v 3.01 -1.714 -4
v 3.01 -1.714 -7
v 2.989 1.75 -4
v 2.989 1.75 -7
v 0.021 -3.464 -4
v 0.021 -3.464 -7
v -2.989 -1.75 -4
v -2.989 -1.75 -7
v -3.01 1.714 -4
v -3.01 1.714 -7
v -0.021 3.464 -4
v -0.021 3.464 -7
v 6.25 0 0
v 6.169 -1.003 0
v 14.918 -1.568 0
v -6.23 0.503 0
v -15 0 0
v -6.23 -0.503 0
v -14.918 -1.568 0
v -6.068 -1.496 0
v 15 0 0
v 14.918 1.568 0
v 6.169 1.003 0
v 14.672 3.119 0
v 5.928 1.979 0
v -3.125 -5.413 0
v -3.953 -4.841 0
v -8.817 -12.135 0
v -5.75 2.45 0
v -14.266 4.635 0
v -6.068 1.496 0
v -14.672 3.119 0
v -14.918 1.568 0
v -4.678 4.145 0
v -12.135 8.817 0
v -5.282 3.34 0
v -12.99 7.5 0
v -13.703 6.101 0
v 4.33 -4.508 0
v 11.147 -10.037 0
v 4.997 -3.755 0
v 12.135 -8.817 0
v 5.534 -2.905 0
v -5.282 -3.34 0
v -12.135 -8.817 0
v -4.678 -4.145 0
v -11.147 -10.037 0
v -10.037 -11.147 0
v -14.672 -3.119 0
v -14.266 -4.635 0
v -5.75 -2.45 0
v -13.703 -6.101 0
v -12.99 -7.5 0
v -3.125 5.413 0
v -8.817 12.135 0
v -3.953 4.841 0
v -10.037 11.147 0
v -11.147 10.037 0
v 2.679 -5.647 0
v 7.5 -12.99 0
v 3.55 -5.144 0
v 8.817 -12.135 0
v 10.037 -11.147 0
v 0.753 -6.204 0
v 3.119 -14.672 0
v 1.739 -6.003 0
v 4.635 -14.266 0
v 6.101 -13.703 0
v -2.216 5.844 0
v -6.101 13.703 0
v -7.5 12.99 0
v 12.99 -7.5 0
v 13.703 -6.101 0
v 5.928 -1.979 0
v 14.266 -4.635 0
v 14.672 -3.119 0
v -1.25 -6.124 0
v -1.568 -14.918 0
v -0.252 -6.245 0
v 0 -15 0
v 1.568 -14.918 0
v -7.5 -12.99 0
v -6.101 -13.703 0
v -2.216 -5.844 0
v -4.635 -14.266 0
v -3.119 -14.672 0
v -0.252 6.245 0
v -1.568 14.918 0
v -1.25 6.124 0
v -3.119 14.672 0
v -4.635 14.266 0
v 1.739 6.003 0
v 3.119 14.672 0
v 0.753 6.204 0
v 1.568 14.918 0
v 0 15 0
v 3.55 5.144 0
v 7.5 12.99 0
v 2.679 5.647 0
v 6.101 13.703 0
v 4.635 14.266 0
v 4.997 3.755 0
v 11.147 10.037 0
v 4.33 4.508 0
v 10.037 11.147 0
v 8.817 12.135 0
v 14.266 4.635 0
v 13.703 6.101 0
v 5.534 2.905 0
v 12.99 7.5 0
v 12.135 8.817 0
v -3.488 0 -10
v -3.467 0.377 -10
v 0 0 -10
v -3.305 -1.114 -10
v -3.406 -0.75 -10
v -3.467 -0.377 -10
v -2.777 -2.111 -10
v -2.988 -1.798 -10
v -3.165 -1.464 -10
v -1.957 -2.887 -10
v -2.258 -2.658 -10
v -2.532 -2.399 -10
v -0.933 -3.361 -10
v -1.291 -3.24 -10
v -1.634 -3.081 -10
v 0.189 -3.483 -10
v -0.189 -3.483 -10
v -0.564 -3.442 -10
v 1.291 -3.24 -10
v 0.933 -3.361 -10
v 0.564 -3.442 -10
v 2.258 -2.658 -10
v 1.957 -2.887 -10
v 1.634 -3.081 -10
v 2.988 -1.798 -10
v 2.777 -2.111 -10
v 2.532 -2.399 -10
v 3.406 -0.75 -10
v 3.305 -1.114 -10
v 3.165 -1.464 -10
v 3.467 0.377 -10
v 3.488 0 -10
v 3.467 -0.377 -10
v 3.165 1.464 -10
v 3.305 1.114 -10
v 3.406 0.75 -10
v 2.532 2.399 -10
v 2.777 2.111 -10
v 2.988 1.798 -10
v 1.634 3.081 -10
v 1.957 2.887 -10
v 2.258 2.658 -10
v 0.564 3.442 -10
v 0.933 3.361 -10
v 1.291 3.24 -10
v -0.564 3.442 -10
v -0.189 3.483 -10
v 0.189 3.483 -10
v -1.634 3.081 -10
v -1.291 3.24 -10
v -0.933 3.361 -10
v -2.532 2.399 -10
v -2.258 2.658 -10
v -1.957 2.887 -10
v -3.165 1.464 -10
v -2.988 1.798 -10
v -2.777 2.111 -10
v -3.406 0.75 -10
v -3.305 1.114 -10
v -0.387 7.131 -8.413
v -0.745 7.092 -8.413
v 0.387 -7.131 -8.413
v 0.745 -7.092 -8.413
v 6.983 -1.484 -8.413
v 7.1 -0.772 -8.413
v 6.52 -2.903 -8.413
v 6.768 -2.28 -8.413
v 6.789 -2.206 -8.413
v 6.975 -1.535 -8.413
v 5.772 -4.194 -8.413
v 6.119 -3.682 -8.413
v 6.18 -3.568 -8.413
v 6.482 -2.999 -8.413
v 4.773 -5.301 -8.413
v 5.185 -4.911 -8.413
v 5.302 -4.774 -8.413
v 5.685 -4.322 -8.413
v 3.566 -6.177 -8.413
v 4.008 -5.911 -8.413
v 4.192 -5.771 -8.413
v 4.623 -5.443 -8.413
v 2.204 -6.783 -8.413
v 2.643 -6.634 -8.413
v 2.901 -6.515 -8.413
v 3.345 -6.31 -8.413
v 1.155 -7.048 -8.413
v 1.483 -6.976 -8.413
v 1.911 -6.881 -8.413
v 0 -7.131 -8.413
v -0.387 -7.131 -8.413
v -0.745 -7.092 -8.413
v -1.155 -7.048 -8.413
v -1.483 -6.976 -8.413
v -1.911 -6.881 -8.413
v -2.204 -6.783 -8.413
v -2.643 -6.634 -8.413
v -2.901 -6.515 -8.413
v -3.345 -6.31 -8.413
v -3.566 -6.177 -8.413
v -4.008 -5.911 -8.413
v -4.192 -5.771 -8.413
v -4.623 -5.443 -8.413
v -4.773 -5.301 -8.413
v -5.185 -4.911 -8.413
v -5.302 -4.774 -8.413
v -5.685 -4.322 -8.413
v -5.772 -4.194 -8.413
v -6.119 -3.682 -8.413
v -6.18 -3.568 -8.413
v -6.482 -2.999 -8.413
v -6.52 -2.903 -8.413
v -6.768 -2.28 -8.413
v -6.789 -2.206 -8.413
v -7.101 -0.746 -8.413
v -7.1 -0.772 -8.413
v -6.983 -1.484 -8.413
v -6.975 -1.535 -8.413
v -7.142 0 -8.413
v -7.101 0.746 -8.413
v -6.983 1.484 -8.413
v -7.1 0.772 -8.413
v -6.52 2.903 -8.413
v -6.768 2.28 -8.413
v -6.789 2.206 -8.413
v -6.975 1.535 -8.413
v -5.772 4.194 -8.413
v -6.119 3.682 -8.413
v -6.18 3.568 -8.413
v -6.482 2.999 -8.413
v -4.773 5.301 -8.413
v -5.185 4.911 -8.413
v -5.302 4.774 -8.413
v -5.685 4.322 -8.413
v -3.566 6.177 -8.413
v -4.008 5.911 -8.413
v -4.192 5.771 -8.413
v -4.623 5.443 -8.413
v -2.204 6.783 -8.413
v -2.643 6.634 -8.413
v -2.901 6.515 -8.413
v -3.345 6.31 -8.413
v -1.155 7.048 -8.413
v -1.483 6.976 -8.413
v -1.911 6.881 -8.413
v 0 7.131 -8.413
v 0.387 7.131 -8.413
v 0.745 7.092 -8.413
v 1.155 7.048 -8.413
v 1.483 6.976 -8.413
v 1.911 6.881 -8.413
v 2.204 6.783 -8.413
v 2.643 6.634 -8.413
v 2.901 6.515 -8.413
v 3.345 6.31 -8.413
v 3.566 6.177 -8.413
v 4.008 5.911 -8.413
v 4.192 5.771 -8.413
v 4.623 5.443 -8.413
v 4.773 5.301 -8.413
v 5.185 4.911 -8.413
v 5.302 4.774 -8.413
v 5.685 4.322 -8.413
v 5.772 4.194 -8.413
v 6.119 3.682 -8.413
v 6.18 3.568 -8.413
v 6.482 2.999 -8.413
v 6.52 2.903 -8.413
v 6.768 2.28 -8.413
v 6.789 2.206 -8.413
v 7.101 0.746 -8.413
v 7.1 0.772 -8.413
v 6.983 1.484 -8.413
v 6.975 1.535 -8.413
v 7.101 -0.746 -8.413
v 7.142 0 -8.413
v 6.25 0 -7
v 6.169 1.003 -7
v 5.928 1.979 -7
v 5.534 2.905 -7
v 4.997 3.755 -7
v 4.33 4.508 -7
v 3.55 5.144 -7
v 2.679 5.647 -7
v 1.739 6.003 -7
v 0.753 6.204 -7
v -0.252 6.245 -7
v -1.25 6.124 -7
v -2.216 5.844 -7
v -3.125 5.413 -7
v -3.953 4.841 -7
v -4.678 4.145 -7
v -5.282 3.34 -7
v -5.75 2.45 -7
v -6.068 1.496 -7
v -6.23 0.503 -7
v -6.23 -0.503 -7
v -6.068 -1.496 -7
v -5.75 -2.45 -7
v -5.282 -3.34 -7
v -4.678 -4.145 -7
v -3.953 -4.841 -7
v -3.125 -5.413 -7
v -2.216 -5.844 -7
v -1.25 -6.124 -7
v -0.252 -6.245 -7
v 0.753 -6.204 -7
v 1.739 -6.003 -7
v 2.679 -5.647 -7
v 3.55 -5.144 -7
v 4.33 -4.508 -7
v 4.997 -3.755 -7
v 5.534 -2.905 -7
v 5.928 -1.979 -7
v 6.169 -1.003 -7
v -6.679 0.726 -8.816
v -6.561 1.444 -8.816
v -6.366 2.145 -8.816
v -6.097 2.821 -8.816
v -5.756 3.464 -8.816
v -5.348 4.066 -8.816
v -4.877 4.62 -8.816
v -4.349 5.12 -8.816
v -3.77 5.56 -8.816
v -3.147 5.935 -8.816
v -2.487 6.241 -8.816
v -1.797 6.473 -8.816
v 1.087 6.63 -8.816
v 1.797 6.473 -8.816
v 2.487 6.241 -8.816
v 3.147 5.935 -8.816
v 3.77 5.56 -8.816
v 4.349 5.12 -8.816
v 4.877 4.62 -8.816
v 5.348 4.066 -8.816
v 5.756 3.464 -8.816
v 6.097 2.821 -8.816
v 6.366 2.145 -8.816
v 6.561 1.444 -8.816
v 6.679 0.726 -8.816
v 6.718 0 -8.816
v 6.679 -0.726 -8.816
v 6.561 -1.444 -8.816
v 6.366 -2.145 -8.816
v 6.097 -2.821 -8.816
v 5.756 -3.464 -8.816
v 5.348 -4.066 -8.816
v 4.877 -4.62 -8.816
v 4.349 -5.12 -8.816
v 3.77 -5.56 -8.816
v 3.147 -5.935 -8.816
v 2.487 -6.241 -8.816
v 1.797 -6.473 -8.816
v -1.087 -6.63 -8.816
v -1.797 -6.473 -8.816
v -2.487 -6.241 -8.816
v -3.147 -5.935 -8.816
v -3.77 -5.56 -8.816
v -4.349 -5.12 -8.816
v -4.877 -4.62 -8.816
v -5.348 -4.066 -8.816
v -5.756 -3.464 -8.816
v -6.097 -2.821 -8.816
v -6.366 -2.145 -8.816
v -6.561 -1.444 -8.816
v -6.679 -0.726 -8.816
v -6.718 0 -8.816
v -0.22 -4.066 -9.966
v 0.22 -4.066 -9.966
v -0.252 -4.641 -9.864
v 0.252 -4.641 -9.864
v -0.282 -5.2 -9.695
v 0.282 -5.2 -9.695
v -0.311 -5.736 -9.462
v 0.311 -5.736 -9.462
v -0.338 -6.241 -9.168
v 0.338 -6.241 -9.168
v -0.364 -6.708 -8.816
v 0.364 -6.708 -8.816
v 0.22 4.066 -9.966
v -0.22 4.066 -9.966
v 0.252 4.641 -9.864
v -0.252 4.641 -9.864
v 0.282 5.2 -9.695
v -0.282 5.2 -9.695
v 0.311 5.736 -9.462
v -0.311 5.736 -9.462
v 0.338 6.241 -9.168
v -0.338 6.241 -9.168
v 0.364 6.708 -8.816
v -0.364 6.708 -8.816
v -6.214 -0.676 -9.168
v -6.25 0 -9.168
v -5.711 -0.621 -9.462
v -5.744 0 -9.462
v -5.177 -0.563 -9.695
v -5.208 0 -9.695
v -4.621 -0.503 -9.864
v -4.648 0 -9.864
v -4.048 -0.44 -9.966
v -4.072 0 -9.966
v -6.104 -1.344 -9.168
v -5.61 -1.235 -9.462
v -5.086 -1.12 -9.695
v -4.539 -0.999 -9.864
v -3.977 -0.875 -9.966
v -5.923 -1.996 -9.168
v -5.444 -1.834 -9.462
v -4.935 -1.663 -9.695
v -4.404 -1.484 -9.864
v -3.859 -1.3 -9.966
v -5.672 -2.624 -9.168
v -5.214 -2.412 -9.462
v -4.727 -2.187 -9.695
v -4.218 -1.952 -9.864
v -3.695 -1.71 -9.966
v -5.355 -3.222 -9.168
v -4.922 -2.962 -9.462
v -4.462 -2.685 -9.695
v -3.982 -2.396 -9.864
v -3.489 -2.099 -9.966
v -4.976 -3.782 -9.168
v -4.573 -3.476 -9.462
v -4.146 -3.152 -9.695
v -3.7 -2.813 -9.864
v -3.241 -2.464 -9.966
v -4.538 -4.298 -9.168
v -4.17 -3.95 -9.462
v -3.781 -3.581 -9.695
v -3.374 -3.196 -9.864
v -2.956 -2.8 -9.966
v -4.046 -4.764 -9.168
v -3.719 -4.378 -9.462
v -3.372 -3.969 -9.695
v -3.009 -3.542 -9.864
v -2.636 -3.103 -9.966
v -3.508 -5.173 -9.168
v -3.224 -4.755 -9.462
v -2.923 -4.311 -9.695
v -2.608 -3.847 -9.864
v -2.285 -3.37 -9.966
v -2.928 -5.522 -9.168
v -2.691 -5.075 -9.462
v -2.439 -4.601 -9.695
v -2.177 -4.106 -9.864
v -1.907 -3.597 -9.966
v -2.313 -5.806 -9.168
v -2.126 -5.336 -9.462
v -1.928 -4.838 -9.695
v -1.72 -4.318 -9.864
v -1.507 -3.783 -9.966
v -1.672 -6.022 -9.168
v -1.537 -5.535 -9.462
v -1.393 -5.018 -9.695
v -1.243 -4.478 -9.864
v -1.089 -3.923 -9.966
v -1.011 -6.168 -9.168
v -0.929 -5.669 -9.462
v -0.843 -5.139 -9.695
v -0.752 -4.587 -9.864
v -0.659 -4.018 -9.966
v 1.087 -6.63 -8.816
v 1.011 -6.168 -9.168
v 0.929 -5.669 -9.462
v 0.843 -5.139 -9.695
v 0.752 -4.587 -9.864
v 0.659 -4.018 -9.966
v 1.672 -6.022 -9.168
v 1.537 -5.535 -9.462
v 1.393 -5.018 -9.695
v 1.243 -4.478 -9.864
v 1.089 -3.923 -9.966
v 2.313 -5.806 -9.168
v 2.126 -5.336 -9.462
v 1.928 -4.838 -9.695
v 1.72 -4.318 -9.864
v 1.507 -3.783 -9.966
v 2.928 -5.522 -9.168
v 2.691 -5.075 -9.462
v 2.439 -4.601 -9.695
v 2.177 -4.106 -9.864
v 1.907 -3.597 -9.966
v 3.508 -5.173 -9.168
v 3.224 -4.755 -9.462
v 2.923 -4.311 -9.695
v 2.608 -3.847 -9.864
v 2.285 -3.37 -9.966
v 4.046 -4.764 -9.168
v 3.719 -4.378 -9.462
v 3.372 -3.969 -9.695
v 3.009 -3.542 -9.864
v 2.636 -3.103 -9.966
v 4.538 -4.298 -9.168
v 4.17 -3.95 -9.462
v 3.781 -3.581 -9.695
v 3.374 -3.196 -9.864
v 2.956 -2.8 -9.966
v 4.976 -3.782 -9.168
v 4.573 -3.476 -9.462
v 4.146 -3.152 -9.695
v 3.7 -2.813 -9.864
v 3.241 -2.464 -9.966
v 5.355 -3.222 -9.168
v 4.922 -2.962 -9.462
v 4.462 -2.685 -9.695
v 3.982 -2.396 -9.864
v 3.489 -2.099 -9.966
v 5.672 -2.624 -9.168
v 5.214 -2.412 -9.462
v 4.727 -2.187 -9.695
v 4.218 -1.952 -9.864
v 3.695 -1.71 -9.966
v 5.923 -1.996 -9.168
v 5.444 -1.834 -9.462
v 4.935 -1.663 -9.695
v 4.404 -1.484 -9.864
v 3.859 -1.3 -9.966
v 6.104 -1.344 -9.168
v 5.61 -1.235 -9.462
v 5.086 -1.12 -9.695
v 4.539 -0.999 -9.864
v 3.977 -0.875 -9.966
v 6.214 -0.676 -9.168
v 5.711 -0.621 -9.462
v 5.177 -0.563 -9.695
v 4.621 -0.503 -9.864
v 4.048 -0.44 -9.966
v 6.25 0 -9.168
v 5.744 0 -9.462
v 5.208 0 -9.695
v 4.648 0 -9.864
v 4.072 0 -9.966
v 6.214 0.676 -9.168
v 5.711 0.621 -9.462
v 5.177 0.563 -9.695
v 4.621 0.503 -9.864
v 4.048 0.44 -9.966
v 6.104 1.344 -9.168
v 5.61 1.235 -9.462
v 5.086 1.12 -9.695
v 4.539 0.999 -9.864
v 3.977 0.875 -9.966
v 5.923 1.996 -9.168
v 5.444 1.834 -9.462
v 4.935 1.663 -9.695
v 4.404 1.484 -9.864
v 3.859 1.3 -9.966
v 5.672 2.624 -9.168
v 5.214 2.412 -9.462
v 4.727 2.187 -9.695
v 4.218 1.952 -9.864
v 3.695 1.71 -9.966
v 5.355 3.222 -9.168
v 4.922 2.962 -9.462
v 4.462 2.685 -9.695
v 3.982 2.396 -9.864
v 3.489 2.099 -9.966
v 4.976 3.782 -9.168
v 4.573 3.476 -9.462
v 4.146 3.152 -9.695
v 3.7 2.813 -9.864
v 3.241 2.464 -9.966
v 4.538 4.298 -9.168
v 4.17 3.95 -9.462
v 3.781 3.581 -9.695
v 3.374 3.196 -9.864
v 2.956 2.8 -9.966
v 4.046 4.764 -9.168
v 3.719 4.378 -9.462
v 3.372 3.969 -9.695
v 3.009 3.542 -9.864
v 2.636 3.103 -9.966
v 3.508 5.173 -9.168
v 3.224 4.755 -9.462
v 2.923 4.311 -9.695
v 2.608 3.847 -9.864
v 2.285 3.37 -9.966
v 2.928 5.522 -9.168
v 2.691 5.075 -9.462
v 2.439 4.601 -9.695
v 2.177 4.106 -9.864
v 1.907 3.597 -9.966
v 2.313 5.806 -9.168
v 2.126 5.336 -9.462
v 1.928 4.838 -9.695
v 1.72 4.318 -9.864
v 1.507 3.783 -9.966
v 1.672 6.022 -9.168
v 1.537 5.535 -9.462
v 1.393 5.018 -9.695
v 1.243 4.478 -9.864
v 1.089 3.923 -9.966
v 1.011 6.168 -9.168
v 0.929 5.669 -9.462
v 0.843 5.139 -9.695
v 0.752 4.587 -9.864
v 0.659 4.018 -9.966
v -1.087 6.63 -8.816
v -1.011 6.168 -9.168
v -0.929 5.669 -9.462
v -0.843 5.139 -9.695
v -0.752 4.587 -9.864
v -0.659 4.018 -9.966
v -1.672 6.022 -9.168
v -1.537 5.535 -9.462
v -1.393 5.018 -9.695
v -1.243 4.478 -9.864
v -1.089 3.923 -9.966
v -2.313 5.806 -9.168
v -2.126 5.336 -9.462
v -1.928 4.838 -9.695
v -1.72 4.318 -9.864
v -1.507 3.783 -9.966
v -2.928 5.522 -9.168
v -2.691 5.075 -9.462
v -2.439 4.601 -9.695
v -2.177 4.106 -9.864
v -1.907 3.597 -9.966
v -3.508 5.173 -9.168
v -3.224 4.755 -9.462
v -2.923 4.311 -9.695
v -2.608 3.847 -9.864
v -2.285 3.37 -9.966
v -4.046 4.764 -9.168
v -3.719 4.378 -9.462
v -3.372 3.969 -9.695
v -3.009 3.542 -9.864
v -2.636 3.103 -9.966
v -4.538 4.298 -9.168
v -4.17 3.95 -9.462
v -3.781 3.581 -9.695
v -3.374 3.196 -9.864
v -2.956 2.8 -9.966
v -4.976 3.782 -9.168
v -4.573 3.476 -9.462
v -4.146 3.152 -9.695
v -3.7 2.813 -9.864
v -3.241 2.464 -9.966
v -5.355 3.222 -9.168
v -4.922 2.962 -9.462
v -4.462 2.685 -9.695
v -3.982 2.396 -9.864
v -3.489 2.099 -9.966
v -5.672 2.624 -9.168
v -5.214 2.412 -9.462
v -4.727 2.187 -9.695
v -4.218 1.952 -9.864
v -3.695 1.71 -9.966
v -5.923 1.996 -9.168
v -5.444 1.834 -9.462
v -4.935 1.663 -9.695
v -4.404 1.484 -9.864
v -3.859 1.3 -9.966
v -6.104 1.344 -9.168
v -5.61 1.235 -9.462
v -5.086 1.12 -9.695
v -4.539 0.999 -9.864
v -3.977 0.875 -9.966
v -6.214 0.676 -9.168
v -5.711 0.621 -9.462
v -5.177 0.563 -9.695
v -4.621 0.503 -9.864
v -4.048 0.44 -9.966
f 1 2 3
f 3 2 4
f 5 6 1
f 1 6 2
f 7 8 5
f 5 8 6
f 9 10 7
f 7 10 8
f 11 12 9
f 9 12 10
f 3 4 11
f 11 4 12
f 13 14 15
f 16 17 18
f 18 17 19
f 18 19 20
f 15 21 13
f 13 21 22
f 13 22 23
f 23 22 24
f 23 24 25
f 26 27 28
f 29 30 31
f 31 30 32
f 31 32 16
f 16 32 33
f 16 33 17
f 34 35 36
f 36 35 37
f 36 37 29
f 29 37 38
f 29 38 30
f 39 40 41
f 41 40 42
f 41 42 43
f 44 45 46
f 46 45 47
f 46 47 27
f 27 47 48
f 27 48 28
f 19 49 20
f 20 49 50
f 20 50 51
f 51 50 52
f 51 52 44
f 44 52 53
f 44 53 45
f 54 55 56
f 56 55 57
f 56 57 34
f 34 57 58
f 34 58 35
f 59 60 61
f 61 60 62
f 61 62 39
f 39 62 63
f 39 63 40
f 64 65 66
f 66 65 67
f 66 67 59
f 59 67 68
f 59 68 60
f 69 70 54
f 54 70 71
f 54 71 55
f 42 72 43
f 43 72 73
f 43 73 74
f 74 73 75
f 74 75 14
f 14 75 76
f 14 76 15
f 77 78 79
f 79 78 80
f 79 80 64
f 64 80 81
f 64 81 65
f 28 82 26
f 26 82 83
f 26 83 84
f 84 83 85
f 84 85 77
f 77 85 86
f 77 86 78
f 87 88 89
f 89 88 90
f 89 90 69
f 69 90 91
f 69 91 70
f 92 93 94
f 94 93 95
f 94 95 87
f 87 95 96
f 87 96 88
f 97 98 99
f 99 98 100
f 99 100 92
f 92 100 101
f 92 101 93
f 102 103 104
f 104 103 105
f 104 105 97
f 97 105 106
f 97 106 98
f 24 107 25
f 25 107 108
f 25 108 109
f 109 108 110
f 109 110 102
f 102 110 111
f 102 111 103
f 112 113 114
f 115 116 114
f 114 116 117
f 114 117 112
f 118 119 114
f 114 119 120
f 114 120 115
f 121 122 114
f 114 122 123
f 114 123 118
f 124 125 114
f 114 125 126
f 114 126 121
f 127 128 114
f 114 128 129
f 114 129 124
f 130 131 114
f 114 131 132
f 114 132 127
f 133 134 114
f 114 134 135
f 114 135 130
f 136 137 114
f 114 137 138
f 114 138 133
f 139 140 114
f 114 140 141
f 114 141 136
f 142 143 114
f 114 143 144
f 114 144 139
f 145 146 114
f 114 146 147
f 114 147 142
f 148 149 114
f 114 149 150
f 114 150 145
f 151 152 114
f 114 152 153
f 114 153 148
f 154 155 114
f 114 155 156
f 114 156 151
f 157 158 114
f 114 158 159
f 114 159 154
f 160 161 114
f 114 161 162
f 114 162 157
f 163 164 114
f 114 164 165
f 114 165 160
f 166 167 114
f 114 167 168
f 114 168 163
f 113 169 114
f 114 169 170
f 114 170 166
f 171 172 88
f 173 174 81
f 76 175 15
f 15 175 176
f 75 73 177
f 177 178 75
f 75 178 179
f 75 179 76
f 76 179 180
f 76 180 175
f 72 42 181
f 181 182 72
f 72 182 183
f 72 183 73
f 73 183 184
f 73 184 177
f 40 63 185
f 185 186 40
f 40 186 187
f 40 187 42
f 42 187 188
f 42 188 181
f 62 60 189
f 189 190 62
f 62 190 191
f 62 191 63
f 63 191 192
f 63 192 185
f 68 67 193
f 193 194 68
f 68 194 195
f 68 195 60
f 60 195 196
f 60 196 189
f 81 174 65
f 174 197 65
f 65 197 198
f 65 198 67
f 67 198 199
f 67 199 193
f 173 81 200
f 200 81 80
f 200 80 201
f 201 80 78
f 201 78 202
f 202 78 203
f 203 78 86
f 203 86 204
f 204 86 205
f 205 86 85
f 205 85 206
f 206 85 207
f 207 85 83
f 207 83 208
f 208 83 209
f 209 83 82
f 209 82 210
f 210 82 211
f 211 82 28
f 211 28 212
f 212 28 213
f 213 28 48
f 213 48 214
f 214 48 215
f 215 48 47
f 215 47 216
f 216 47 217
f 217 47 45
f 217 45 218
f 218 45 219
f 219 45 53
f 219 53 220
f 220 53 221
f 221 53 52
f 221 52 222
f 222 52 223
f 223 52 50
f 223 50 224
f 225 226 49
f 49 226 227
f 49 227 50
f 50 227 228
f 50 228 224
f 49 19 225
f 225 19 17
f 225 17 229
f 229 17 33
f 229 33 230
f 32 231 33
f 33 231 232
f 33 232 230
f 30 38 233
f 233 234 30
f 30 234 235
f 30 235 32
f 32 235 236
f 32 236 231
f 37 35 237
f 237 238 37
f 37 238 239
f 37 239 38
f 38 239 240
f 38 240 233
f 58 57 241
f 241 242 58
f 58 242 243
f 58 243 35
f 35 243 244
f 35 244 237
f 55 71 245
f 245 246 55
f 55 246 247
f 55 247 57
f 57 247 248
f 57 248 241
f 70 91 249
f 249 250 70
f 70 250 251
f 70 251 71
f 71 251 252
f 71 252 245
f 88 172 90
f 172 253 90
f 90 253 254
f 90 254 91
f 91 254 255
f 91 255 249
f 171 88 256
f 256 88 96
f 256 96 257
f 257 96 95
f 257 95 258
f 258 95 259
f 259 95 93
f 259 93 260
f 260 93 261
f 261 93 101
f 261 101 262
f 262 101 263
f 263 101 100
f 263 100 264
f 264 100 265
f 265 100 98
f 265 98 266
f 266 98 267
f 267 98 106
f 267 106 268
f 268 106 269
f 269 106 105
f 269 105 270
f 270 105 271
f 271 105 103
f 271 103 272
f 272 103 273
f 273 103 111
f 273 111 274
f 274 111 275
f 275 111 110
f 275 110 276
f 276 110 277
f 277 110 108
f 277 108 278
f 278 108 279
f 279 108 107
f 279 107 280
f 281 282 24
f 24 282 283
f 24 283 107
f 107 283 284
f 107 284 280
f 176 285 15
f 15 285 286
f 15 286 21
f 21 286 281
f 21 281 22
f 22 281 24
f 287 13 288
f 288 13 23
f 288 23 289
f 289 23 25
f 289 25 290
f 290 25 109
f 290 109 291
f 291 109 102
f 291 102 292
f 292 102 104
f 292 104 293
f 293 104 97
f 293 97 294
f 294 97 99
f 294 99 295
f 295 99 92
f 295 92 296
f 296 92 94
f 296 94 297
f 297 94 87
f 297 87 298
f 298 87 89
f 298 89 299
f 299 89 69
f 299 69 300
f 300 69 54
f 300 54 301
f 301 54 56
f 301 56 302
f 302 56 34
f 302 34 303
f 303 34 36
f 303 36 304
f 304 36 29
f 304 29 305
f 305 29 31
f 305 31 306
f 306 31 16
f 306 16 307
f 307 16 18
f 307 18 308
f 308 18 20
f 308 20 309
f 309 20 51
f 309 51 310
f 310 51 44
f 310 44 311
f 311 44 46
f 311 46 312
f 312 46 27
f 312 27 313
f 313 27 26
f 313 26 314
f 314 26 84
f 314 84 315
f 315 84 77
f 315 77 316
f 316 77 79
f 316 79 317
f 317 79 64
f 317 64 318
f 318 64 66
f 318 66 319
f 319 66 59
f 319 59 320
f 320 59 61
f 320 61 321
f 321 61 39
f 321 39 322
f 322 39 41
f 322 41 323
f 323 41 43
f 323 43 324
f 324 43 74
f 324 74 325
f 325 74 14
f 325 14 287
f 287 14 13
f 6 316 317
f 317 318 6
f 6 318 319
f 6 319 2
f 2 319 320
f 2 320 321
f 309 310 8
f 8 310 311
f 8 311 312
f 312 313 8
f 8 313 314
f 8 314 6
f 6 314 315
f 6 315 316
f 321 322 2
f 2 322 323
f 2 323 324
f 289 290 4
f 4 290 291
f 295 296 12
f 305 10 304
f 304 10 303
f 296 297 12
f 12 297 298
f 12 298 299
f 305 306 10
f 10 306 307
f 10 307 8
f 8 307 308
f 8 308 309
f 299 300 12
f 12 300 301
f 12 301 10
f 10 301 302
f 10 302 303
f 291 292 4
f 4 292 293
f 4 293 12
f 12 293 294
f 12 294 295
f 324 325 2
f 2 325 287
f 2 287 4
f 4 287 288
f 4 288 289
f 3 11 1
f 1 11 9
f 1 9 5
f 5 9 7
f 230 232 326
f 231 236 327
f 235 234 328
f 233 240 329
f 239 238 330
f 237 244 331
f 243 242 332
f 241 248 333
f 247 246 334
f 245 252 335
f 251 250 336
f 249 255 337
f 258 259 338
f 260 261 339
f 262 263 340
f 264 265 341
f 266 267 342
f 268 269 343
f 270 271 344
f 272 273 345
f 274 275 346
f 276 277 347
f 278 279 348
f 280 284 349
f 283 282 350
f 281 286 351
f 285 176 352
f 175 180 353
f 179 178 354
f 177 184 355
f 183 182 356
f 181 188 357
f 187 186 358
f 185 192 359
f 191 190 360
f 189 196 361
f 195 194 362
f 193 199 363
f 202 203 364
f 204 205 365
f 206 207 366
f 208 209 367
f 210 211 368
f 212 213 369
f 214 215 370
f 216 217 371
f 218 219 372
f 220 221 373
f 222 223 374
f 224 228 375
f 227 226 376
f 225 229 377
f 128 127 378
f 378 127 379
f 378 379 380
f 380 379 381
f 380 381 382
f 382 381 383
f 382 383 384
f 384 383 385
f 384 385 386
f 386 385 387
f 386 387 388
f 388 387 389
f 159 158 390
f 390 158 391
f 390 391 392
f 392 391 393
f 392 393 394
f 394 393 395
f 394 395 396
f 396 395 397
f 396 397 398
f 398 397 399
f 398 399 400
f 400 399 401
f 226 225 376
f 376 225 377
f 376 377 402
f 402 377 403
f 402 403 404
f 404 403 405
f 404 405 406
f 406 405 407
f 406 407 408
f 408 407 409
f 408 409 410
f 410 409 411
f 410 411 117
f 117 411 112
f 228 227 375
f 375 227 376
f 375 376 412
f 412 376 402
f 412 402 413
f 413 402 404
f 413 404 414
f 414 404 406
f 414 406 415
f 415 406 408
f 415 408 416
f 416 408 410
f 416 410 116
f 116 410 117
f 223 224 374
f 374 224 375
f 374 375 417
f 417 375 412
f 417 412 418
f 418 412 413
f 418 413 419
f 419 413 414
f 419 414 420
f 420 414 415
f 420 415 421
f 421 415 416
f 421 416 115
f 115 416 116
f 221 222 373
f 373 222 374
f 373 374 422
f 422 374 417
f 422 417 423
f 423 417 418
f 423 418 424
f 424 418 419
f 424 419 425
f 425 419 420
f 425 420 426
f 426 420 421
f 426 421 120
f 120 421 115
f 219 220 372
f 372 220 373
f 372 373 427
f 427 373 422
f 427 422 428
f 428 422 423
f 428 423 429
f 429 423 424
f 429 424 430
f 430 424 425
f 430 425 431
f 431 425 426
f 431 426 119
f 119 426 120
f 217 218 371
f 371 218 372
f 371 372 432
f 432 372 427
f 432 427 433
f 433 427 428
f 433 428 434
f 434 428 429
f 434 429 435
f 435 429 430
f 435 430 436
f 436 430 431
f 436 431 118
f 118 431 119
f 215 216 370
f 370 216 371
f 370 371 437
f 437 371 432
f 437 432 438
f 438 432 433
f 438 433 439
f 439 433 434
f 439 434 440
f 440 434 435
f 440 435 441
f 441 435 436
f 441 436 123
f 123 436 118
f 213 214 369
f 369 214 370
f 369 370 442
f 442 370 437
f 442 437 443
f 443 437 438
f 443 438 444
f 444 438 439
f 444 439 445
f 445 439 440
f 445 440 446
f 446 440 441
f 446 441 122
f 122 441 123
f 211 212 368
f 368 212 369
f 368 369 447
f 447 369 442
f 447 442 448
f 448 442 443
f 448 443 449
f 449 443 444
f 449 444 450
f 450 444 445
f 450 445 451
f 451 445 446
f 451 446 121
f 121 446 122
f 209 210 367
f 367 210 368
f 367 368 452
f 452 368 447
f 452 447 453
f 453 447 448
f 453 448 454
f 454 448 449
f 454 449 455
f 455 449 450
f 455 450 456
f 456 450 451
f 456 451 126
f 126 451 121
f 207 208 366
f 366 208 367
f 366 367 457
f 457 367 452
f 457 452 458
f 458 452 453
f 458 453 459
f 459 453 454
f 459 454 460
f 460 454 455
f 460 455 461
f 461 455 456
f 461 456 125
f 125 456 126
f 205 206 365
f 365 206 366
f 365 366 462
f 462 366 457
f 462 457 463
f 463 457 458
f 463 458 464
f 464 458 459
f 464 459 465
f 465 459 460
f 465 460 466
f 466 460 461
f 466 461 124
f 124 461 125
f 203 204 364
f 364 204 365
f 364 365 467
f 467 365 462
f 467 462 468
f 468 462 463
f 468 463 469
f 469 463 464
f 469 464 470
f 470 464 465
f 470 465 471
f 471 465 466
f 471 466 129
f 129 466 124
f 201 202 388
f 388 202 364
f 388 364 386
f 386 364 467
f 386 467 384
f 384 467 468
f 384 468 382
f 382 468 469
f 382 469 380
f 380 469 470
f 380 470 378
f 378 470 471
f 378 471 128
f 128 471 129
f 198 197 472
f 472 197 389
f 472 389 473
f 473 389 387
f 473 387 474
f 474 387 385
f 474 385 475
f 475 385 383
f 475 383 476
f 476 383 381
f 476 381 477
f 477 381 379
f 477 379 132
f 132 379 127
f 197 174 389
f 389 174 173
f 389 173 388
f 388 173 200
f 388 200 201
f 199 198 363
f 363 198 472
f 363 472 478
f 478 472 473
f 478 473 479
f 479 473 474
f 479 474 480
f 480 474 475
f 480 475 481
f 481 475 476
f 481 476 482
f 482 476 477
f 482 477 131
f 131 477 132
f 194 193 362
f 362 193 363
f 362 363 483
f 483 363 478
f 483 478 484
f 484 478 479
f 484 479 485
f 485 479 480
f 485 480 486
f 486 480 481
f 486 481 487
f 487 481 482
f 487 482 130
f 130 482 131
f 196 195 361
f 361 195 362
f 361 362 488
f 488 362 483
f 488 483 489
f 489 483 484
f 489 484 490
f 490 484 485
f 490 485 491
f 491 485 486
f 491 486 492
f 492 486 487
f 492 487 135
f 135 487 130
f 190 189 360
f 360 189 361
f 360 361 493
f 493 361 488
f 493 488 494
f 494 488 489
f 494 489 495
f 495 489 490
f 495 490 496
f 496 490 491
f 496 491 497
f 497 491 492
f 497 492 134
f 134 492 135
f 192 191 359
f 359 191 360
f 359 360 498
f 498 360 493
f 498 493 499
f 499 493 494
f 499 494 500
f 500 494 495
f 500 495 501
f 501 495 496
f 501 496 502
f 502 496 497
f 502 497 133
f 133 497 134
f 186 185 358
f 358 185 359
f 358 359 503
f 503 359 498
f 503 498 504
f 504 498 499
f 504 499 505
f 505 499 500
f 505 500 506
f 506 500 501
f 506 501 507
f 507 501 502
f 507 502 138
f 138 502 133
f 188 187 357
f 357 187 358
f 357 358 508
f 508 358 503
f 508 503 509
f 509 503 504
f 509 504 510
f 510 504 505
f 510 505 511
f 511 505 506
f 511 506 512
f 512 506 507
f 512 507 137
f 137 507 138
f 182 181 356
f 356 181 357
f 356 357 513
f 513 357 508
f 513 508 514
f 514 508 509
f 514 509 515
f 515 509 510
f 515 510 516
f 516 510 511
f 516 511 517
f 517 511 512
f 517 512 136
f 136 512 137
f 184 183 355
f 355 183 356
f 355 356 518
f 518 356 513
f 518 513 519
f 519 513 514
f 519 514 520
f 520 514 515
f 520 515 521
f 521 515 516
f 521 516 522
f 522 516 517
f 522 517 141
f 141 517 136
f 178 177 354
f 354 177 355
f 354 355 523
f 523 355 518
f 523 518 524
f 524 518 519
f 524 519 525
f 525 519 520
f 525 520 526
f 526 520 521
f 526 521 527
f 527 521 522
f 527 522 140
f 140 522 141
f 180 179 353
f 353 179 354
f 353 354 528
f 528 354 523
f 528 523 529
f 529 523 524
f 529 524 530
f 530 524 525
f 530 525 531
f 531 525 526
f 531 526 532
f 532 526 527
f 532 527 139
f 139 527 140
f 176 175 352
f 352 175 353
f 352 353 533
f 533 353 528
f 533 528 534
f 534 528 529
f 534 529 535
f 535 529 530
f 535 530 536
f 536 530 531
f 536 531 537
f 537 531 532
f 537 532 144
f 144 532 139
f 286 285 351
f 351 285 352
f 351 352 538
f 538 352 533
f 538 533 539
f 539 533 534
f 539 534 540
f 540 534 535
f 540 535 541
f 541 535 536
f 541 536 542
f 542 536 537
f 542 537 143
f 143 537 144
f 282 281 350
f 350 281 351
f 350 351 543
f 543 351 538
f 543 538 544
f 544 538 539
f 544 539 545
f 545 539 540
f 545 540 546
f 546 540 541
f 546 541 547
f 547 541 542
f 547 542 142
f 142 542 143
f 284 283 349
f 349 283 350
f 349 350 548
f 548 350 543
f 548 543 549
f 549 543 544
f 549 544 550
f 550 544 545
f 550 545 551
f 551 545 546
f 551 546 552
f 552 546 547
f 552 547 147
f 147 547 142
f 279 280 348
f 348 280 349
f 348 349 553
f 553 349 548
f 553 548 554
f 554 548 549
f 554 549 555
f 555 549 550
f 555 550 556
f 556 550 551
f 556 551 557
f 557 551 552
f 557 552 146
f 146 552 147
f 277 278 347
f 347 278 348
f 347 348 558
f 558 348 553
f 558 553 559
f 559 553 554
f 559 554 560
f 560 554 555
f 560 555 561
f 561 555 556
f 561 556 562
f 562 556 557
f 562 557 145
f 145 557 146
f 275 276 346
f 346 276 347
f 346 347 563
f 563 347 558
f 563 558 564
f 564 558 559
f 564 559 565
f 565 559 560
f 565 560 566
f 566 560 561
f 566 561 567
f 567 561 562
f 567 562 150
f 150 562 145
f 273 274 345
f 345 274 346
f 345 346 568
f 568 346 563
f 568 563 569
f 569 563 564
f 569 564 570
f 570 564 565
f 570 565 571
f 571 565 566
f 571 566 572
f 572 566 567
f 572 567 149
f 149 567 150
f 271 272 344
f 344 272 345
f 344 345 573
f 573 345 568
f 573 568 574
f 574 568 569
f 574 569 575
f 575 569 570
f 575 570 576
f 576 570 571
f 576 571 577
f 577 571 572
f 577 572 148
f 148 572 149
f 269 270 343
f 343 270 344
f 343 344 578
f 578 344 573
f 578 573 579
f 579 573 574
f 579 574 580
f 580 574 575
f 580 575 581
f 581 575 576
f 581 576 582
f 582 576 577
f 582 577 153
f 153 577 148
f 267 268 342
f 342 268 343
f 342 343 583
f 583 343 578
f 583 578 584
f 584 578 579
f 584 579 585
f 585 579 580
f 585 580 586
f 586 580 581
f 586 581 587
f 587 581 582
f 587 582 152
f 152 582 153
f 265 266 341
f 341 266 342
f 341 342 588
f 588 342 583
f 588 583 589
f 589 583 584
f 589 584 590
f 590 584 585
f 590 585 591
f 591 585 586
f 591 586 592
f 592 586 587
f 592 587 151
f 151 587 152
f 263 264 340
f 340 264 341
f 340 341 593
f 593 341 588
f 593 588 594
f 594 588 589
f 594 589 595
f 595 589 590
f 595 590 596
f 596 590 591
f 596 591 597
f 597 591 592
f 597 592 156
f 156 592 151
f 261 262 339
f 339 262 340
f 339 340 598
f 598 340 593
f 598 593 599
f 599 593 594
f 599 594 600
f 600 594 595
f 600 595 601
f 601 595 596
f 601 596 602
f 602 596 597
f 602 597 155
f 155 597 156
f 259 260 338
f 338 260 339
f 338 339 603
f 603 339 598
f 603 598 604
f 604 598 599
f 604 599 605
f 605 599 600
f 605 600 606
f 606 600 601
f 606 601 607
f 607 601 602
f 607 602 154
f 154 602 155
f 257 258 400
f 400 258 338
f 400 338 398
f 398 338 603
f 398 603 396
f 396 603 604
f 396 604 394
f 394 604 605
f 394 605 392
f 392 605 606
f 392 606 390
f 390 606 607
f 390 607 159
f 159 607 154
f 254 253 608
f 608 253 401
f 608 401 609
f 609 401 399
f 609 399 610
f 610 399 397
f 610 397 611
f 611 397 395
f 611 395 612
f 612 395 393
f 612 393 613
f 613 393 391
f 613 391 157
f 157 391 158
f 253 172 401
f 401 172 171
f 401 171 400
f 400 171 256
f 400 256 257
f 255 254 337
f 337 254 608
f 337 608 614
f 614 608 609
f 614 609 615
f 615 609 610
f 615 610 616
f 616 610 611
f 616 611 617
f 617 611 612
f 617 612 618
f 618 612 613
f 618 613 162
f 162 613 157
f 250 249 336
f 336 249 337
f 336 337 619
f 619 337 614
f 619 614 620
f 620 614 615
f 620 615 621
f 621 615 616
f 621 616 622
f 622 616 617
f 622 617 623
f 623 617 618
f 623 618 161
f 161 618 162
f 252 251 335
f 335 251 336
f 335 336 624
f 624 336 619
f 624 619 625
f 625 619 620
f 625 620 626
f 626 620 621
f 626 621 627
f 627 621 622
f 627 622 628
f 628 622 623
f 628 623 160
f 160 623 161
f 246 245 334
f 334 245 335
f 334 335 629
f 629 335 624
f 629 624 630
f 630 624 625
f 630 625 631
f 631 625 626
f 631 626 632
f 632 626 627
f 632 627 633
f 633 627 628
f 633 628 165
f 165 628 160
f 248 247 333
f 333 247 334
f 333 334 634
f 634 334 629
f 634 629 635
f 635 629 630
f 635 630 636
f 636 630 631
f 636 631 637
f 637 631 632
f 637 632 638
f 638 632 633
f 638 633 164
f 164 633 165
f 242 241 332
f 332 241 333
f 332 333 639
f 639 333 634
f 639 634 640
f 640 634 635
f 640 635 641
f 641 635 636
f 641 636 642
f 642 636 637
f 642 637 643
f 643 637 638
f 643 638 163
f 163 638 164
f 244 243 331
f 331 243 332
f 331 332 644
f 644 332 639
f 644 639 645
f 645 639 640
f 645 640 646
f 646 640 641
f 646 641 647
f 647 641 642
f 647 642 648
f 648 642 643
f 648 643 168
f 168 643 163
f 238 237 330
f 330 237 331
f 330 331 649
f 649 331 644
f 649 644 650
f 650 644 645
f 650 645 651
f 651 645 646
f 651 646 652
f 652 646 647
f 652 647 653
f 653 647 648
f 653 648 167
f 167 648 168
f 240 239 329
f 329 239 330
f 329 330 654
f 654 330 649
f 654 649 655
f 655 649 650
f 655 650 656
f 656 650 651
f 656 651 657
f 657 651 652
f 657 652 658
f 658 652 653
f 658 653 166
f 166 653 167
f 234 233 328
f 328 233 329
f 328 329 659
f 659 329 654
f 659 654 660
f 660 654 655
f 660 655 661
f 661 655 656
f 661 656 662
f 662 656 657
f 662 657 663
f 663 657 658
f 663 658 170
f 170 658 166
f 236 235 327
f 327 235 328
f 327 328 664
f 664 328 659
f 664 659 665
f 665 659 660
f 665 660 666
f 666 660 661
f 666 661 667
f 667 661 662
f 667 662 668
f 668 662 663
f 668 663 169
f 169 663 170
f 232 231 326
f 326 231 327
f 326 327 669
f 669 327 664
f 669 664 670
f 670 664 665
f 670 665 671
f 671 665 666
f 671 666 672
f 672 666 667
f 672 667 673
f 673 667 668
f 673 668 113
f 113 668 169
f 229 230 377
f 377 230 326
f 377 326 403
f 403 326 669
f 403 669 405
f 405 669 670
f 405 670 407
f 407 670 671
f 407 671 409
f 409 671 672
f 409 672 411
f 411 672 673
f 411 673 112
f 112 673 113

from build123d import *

# Parameters (mm, degrees)
SKETCH2_R          = 6.25
CUT_EXTRUDE1_DEPTH = 7
CUT_EXTRUDE2_DEPTH = 4
FILLET1_R          = 5


with BuildPart() as part:
    # Sketch1 → Revolve1 (revolve)
    with BuildSketch(Plane(origin=(0, 0, 0), x_dir=(1, 0, 0), z_dir=(0, 1, 0))):
        Polygon((0, 0), (0, 10), (5.659340659, 10), (15, 0), align=None)
    revolve(axis=Axis((0, 0, 0), (0, 0, -1)))

    # Sketch2 → Cut-Extrude1 (cut)
    with BuildSketch(Plane.XY):
        Circle(SKETCH2_R)
        Polygon((2.989454216, 1.750189559), (-0.020981512, 3.464038074), (-3.010435727, 1.713848515), (-2.989454216, -1.750189559), (0.020981512, -3.464038074), (3.010435727, -1.713848515), align=None, mode=Mode.SUBTRACT)
    extrude(amount=-CUT_EXTRUDE1_DEPTH, mode=Mode.SUBTRACT)

    # Sketch4 → Cut-Extrude2 (cut)
    with BuildSketch(Plane.XY):
        Polygon((-0.020981512, 3.464038074), (-3.010435727, 1.713848515), (-2.989454216, -1.750189559), (0.020981512, -3.464038074), (3.010435727, -1.713848515), (2.989454216, 1.750189559), align=None)
    extrude(amount=-CUT_EXTRUDE2_DEPTH, mode=Mode.SUBTRACT)

    # Fillet1
    fillet1_edges = [part.edges().sort_by_distance(p)[0] for p in [
        (-5.659340659, 0, -10),
    ]]
    fillet(fillet1_edges, radius=FILLET1_R)


solid = part.part
